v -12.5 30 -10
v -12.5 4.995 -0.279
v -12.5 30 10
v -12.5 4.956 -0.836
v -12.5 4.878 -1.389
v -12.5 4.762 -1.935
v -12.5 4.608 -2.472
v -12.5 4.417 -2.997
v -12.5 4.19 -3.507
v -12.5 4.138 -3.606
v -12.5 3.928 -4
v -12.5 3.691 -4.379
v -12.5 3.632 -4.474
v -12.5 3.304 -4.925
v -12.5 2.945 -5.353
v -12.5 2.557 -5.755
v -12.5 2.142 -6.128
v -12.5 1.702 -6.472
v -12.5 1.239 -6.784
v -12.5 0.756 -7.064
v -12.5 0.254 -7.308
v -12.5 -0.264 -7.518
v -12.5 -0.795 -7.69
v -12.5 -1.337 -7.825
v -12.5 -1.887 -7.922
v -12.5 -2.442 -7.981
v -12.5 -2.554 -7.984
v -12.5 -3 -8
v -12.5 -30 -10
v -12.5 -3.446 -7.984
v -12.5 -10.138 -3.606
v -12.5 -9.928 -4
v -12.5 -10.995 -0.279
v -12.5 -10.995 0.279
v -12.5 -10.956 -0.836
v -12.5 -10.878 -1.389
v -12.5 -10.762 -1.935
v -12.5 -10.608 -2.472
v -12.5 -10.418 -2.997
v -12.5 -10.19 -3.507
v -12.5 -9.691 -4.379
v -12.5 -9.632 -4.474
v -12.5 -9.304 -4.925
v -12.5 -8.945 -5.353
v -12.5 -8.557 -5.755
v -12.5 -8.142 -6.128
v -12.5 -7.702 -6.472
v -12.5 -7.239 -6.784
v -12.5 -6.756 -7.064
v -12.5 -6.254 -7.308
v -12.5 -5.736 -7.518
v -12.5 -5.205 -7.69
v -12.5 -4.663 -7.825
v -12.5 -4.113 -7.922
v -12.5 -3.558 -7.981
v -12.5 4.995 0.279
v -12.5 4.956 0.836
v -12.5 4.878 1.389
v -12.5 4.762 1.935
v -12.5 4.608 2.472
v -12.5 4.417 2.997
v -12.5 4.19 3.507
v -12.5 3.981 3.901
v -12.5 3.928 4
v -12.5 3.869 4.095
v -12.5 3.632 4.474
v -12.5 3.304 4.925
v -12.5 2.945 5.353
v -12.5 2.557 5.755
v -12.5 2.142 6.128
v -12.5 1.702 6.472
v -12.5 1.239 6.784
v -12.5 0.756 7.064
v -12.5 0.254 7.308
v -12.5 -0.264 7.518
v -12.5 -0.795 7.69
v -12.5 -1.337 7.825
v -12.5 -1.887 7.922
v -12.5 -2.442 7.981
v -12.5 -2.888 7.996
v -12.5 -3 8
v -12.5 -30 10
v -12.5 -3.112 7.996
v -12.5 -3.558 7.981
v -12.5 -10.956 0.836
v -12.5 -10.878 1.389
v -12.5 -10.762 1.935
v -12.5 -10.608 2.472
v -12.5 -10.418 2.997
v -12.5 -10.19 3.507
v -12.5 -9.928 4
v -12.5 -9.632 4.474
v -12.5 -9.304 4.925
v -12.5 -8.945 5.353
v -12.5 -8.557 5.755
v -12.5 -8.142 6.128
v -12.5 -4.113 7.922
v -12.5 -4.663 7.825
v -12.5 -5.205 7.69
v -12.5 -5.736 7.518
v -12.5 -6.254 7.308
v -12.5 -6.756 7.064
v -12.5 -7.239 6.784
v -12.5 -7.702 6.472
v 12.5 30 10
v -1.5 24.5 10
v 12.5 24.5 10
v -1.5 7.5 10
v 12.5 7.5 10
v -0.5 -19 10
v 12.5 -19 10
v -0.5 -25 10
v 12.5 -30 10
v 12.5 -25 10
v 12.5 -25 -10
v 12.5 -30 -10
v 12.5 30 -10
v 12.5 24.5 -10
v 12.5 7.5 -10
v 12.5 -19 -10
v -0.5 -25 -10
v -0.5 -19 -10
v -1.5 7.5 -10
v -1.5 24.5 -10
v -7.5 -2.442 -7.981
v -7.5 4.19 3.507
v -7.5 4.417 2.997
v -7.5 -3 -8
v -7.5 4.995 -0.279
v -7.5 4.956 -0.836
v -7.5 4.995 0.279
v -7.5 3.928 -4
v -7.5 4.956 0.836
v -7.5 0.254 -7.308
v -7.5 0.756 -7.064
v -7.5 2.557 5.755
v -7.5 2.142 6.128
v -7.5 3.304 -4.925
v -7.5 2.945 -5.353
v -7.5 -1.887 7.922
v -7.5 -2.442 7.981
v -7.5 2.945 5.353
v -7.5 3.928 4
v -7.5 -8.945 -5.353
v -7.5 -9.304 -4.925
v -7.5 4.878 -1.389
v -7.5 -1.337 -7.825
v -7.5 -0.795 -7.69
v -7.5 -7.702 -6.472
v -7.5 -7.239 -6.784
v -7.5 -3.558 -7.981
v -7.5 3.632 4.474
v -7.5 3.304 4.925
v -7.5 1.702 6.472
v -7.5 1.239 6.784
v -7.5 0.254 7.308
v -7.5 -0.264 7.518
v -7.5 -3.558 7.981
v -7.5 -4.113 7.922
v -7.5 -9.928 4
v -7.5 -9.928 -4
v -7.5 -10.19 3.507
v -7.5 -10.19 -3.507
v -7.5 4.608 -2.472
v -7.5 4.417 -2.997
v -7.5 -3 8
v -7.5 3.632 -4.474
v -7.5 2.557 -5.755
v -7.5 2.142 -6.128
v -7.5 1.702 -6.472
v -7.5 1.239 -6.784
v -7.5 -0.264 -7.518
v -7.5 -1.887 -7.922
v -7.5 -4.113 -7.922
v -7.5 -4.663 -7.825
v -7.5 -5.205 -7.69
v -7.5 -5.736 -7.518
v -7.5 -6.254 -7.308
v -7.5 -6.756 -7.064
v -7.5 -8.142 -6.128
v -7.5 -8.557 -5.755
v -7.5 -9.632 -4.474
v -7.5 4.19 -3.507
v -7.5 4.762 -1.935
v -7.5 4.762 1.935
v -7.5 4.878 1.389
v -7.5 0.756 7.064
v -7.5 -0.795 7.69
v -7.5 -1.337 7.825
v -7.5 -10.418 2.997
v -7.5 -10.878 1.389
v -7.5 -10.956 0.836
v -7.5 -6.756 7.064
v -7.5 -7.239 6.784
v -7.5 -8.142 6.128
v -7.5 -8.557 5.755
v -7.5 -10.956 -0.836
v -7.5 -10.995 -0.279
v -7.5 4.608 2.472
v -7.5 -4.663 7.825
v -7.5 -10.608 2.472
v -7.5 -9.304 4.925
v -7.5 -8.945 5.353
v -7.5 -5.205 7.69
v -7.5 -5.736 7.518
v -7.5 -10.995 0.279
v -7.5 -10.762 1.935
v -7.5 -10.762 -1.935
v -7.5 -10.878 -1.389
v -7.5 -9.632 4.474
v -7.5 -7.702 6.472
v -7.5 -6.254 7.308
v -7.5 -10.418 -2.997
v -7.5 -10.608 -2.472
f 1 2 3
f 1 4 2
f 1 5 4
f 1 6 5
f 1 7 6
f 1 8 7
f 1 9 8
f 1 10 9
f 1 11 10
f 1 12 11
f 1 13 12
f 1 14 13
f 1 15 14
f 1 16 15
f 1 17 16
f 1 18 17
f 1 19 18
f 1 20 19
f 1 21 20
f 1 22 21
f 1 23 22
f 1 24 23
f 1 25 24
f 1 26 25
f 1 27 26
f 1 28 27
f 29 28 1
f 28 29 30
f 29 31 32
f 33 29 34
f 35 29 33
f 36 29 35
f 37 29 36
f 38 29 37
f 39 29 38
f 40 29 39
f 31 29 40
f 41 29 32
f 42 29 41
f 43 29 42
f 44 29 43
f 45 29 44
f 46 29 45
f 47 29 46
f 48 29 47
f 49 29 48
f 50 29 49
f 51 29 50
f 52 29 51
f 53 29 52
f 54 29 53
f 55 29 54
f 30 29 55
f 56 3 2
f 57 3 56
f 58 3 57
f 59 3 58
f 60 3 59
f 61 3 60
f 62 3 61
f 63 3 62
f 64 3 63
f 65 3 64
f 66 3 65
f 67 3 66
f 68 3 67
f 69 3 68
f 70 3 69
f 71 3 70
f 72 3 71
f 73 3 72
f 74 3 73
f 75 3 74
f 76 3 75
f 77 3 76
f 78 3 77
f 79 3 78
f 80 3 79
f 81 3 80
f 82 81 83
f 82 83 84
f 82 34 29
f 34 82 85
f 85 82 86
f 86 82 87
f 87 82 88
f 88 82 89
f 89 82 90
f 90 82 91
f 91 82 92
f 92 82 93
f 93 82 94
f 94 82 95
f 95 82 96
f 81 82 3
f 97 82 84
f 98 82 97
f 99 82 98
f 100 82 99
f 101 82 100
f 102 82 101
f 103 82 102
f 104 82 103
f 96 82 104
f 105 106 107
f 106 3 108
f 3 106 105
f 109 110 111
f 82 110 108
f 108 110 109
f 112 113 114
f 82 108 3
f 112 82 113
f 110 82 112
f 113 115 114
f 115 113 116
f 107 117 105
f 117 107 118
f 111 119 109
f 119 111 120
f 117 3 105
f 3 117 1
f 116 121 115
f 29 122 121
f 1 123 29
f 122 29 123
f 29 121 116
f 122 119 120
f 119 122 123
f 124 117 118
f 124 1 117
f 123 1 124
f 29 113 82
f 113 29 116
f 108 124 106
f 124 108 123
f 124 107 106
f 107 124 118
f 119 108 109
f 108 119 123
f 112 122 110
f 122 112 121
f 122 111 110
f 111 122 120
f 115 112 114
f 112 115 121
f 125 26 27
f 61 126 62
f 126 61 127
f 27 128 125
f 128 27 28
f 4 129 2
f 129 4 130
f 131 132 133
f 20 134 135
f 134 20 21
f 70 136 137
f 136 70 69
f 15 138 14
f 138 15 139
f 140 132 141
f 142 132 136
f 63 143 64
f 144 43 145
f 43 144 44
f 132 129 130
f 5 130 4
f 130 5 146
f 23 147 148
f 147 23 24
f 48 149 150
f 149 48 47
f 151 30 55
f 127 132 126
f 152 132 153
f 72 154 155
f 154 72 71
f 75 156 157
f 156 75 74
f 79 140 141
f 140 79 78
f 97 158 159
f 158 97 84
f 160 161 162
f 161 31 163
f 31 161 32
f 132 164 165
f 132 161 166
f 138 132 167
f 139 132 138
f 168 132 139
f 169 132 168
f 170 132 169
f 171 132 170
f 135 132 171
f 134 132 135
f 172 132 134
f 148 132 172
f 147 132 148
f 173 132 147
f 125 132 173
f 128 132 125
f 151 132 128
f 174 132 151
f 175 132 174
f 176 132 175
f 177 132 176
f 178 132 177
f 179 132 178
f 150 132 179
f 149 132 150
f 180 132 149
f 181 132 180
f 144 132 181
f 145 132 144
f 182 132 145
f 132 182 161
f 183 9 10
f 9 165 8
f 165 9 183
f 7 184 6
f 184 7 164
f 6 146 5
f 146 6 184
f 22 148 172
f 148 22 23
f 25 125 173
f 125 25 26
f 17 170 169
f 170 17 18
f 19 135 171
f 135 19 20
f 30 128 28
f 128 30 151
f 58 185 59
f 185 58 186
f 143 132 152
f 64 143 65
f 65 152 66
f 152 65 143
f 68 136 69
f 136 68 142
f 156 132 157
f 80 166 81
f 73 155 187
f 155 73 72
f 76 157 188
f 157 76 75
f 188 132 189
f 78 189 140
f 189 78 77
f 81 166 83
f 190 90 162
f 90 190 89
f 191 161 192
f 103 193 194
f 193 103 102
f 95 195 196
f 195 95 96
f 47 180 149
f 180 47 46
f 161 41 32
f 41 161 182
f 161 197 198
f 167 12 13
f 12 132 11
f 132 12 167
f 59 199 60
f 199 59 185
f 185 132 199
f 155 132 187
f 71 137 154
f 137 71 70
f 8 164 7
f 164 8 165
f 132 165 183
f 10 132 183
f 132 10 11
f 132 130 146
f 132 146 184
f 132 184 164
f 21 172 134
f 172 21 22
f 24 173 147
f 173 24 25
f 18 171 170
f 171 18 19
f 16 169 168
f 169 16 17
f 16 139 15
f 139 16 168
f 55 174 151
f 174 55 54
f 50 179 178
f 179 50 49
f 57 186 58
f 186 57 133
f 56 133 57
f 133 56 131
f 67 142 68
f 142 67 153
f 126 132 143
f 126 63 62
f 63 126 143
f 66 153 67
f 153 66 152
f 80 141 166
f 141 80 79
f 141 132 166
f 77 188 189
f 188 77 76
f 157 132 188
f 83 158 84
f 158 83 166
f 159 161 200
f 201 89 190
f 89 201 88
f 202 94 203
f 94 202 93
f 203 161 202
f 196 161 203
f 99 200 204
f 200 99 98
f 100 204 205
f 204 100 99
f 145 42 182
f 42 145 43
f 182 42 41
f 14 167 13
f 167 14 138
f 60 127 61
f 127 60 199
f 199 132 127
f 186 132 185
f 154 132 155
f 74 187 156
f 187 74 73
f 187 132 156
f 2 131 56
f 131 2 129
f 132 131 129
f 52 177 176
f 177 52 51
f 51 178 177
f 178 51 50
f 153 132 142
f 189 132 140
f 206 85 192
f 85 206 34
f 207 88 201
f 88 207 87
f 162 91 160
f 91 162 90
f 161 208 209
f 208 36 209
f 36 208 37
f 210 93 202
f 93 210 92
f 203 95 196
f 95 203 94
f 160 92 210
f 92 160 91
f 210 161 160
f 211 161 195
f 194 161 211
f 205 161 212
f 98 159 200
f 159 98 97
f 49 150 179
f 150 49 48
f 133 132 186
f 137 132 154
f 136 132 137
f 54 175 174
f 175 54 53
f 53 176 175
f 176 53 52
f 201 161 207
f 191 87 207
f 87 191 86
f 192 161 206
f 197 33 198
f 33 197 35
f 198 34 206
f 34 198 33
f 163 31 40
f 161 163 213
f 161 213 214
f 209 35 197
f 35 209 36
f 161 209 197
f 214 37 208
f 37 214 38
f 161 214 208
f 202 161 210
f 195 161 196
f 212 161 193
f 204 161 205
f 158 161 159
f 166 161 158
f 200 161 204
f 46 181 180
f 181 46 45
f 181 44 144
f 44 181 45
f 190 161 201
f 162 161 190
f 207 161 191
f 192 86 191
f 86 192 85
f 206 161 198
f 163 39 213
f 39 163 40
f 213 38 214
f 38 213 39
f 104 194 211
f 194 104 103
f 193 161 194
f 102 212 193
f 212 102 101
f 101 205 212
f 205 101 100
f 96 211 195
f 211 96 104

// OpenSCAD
$fn = 90;

x = 25;
y = 60;
z = 20;

frameCutOffset = 16;
frameCutWidth = 17;
frameCutDepth = 14;

barCutOffset = -22;
barCutWidth = 6;
barCutDepth = 13;

footY = -3;
footDepth = 5;
footRadius = 8;

difference(){
    cube([x, y, z], center = true);
    frameCut();
    barCut();
    footDimple();
}


module frameCut()
{
    translate([x - frameCutDepth, frameCutOffset, 0]){
        cube([x, frameCutWidth, 0.1 + z], center = true);
    }
}

module barCut()
{
    translate([x - barCutDepth, barCutOffset, 0]){
        cube([x, barCutWidth, 0.1 + z], center = true);
    }
}

module footDimple()
{
    translate([footDepth - x, footY, 0]){
        rotate([0, 90, 0]){
            cylinder(h = x, r = footRadius, center = true);
        }
    }
}
